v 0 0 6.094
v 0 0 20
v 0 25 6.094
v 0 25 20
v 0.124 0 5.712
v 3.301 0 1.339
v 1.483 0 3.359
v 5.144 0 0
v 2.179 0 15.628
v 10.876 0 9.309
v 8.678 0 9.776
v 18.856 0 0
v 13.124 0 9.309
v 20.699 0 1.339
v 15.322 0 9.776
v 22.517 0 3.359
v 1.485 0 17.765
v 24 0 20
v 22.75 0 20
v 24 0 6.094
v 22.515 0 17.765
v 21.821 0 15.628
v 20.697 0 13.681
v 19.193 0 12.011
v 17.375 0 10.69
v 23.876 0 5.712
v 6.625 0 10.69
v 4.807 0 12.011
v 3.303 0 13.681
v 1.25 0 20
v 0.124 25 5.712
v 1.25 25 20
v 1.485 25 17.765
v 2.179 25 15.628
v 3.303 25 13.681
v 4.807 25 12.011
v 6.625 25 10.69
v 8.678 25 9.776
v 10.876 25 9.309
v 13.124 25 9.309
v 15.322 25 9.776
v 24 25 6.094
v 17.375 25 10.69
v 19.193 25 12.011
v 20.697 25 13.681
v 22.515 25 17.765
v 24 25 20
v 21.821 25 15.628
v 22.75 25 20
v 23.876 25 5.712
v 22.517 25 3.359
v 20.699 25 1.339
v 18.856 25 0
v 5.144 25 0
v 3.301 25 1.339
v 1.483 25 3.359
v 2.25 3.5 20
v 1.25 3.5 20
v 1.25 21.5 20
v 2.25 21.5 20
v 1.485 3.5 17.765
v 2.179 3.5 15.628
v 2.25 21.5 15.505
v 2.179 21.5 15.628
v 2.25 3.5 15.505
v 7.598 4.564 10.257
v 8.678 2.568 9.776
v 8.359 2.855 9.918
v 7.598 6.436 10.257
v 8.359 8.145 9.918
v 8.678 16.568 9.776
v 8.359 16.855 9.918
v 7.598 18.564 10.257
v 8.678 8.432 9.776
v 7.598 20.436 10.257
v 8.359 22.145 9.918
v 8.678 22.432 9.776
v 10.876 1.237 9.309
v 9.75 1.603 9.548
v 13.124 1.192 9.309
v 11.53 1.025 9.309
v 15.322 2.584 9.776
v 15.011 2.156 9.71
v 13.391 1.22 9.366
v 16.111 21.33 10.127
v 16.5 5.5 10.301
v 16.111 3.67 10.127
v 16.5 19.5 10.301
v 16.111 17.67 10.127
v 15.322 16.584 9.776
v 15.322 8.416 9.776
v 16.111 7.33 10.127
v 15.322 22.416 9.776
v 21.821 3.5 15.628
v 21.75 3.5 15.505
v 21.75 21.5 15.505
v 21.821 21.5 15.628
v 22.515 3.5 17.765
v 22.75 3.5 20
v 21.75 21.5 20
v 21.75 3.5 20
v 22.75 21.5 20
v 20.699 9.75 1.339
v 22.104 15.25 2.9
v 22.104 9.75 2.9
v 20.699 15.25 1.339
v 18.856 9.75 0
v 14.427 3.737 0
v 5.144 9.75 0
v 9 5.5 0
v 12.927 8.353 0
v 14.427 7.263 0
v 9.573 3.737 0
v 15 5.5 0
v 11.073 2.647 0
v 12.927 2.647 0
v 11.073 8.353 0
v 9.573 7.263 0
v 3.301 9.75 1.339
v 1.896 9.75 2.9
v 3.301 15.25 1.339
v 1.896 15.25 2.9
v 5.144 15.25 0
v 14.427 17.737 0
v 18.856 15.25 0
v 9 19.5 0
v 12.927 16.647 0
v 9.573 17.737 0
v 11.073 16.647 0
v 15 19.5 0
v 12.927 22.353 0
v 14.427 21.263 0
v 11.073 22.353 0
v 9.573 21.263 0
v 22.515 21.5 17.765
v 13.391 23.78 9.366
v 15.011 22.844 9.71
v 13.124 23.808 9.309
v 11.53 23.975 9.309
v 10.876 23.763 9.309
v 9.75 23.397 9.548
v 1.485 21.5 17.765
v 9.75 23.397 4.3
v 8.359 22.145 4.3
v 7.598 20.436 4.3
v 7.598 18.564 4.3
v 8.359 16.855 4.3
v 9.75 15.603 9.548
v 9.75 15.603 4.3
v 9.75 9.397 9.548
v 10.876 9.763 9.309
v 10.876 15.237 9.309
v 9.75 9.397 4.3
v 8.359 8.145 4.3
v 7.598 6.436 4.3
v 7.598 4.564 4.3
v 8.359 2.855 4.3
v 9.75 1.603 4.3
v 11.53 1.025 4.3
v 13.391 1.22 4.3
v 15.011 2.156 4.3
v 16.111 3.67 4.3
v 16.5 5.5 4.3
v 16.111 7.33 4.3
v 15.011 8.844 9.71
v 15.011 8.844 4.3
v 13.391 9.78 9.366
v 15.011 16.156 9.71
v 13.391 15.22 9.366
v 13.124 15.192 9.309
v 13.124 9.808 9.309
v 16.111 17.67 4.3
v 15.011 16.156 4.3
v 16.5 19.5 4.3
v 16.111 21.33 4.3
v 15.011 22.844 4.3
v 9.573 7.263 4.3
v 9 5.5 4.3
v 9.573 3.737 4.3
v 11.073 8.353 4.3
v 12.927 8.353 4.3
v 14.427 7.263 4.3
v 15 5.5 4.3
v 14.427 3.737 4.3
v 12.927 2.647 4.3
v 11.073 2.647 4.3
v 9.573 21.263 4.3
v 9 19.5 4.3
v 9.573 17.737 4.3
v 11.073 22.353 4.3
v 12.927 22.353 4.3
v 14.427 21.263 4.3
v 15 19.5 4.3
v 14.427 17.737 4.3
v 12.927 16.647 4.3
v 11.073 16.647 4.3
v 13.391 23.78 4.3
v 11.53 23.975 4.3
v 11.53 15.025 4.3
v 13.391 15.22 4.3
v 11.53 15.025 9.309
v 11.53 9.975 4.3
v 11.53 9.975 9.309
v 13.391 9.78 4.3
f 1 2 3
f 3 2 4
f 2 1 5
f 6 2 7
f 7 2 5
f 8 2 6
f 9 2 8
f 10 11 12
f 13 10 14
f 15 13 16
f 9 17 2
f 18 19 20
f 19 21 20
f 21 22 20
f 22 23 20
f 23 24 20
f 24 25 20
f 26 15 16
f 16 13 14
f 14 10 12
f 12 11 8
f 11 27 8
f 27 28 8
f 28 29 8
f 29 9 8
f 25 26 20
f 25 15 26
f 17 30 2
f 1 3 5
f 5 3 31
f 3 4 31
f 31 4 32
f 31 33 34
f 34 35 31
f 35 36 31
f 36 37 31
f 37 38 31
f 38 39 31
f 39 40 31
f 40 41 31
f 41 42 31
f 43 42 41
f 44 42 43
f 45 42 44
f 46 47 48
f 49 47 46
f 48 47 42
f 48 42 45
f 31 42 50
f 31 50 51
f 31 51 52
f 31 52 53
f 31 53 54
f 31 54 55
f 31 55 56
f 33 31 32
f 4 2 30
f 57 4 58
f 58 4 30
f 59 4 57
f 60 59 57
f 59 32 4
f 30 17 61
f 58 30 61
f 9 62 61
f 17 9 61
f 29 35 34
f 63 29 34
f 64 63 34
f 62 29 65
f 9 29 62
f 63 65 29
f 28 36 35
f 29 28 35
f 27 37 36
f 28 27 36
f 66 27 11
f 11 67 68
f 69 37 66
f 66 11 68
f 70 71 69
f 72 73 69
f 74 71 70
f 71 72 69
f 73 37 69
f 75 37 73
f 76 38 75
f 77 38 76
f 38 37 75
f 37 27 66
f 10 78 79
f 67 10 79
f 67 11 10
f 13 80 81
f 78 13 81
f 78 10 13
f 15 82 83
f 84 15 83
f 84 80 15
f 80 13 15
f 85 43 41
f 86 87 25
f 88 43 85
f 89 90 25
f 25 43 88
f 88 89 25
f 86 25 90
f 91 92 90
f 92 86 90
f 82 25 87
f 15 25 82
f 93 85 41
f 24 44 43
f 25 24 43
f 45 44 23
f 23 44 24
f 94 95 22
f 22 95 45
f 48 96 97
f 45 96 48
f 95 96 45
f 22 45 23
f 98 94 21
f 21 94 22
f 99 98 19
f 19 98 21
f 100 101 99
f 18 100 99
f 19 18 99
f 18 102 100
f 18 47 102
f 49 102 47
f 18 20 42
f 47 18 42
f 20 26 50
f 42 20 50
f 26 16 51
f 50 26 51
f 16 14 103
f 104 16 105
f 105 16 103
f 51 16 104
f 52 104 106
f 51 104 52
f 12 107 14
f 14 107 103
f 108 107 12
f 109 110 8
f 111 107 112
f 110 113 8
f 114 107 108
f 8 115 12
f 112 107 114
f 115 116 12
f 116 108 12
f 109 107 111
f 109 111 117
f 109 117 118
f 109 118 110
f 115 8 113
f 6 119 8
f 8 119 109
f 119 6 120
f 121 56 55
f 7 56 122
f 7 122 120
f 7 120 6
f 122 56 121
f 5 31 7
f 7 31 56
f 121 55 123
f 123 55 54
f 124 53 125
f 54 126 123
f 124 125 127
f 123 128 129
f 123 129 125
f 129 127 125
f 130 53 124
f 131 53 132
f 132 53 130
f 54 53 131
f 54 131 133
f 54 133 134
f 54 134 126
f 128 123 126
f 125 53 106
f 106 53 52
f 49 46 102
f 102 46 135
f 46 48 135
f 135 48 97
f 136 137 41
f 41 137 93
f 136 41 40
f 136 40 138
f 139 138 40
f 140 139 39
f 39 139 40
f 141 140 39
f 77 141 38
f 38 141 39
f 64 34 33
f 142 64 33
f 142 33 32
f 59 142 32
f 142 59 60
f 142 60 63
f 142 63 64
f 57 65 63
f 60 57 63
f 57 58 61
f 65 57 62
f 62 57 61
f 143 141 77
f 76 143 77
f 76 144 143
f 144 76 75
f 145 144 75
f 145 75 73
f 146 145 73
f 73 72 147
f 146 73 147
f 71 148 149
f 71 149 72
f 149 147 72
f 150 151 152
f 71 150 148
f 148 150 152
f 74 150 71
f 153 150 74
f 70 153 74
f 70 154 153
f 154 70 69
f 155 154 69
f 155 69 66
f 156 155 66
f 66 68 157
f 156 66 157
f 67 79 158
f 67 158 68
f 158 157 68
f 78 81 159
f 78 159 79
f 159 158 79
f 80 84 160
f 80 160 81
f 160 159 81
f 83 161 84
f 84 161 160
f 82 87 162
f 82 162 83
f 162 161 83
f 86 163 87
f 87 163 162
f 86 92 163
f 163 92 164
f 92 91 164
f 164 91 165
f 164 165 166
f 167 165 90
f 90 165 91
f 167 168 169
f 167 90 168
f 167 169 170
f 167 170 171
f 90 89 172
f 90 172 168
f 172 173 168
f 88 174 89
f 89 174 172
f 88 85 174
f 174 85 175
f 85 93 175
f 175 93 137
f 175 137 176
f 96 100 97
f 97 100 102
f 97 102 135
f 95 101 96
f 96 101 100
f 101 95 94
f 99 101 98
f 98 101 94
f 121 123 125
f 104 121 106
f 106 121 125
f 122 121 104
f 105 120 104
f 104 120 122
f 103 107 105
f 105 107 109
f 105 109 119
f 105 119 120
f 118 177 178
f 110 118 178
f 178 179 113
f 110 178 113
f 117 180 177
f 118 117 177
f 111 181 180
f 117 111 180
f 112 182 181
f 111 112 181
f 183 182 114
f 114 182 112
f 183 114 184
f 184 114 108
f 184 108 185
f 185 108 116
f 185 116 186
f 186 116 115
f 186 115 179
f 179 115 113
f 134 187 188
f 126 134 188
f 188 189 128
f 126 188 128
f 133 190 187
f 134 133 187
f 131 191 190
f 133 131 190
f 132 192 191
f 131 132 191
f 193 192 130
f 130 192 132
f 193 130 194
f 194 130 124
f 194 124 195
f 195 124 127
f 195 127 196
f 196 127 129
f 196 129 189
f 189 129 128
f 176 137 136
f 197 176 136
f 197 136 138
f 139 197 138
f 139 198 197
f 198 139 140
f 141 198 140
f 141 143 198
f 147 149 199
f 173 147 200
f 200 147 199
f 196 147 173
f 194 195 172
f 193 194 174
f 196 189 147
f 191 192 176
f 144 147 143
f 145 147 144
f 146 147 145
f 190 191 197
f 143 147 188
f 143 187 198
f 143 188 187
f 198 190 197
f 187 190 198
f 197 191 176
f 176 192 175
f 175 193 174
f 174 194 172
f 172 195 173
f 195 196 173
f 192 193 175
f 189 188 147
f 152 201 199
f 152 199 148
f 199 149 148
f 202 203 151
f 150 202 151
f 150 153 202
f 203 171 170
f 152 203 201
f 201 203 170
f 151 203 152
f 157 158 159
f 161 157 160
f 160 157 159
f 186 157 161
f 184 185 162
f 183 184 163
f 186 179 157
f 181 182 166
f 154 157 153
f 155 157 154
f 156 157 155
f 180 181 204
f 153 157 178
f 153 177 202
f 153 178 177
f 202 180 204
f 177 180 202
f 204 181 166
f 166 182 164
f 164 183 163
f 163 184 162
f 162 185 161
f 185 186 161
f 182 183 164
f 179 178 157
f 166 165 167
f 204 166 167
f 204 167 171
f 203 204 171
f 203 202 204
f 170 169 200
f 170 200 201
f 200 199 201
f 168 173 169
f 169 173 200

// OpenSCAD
// Torch clamp
//

bolthead_d=8;
bolthead_h=5.2;
bolt_d=5;
bolt_h=12;

torchclamp();

module torchclamp() {

	difference() {
		cube([24, 25, 20]);
		translate([12,12.5,20]) torch();
		//translate([0,0,-12]) barclamp();
		translate([12,19.5,7.8]) bolt();
		translate([12,5.5,7.8]) bolt();
		translate([12,12.5,1.4]) tie();
		translate([12,12.5,4]) roundedge();
	}

}

module torch() {
	rotate([90,0,0])
	difference() {
		cylinder(r=10.75,h=26,center=true);
		translate([14.75,0,0]) cube([10,18,18],center=true);
		translate([-14.75,0,0]) cube([10,18,18],center=true);
	}
}

module barclamp() {
	cube([12, 22, 6], center = true);
}

module bolt() {
	union() {
		cylinder(r=(bolthead_d/2)+0.5,h=bolthead_h+1.8,center = true);
		translate([0,0,-((bolthead_h + bolt_h)/2)])
			cylinder(r=(bolt_d/2)+0.5, h=bolt_h, center = true);
	}
}

module tie() {
	cube([30,5.5,3],center=true);
}

module roundedge() {
	difference() {
		cube([26,27,10], center=true);
		translate([0,0,7]) rotate([90,0,0]) cylinder(r=13,h=30,center=true);
	}
}
